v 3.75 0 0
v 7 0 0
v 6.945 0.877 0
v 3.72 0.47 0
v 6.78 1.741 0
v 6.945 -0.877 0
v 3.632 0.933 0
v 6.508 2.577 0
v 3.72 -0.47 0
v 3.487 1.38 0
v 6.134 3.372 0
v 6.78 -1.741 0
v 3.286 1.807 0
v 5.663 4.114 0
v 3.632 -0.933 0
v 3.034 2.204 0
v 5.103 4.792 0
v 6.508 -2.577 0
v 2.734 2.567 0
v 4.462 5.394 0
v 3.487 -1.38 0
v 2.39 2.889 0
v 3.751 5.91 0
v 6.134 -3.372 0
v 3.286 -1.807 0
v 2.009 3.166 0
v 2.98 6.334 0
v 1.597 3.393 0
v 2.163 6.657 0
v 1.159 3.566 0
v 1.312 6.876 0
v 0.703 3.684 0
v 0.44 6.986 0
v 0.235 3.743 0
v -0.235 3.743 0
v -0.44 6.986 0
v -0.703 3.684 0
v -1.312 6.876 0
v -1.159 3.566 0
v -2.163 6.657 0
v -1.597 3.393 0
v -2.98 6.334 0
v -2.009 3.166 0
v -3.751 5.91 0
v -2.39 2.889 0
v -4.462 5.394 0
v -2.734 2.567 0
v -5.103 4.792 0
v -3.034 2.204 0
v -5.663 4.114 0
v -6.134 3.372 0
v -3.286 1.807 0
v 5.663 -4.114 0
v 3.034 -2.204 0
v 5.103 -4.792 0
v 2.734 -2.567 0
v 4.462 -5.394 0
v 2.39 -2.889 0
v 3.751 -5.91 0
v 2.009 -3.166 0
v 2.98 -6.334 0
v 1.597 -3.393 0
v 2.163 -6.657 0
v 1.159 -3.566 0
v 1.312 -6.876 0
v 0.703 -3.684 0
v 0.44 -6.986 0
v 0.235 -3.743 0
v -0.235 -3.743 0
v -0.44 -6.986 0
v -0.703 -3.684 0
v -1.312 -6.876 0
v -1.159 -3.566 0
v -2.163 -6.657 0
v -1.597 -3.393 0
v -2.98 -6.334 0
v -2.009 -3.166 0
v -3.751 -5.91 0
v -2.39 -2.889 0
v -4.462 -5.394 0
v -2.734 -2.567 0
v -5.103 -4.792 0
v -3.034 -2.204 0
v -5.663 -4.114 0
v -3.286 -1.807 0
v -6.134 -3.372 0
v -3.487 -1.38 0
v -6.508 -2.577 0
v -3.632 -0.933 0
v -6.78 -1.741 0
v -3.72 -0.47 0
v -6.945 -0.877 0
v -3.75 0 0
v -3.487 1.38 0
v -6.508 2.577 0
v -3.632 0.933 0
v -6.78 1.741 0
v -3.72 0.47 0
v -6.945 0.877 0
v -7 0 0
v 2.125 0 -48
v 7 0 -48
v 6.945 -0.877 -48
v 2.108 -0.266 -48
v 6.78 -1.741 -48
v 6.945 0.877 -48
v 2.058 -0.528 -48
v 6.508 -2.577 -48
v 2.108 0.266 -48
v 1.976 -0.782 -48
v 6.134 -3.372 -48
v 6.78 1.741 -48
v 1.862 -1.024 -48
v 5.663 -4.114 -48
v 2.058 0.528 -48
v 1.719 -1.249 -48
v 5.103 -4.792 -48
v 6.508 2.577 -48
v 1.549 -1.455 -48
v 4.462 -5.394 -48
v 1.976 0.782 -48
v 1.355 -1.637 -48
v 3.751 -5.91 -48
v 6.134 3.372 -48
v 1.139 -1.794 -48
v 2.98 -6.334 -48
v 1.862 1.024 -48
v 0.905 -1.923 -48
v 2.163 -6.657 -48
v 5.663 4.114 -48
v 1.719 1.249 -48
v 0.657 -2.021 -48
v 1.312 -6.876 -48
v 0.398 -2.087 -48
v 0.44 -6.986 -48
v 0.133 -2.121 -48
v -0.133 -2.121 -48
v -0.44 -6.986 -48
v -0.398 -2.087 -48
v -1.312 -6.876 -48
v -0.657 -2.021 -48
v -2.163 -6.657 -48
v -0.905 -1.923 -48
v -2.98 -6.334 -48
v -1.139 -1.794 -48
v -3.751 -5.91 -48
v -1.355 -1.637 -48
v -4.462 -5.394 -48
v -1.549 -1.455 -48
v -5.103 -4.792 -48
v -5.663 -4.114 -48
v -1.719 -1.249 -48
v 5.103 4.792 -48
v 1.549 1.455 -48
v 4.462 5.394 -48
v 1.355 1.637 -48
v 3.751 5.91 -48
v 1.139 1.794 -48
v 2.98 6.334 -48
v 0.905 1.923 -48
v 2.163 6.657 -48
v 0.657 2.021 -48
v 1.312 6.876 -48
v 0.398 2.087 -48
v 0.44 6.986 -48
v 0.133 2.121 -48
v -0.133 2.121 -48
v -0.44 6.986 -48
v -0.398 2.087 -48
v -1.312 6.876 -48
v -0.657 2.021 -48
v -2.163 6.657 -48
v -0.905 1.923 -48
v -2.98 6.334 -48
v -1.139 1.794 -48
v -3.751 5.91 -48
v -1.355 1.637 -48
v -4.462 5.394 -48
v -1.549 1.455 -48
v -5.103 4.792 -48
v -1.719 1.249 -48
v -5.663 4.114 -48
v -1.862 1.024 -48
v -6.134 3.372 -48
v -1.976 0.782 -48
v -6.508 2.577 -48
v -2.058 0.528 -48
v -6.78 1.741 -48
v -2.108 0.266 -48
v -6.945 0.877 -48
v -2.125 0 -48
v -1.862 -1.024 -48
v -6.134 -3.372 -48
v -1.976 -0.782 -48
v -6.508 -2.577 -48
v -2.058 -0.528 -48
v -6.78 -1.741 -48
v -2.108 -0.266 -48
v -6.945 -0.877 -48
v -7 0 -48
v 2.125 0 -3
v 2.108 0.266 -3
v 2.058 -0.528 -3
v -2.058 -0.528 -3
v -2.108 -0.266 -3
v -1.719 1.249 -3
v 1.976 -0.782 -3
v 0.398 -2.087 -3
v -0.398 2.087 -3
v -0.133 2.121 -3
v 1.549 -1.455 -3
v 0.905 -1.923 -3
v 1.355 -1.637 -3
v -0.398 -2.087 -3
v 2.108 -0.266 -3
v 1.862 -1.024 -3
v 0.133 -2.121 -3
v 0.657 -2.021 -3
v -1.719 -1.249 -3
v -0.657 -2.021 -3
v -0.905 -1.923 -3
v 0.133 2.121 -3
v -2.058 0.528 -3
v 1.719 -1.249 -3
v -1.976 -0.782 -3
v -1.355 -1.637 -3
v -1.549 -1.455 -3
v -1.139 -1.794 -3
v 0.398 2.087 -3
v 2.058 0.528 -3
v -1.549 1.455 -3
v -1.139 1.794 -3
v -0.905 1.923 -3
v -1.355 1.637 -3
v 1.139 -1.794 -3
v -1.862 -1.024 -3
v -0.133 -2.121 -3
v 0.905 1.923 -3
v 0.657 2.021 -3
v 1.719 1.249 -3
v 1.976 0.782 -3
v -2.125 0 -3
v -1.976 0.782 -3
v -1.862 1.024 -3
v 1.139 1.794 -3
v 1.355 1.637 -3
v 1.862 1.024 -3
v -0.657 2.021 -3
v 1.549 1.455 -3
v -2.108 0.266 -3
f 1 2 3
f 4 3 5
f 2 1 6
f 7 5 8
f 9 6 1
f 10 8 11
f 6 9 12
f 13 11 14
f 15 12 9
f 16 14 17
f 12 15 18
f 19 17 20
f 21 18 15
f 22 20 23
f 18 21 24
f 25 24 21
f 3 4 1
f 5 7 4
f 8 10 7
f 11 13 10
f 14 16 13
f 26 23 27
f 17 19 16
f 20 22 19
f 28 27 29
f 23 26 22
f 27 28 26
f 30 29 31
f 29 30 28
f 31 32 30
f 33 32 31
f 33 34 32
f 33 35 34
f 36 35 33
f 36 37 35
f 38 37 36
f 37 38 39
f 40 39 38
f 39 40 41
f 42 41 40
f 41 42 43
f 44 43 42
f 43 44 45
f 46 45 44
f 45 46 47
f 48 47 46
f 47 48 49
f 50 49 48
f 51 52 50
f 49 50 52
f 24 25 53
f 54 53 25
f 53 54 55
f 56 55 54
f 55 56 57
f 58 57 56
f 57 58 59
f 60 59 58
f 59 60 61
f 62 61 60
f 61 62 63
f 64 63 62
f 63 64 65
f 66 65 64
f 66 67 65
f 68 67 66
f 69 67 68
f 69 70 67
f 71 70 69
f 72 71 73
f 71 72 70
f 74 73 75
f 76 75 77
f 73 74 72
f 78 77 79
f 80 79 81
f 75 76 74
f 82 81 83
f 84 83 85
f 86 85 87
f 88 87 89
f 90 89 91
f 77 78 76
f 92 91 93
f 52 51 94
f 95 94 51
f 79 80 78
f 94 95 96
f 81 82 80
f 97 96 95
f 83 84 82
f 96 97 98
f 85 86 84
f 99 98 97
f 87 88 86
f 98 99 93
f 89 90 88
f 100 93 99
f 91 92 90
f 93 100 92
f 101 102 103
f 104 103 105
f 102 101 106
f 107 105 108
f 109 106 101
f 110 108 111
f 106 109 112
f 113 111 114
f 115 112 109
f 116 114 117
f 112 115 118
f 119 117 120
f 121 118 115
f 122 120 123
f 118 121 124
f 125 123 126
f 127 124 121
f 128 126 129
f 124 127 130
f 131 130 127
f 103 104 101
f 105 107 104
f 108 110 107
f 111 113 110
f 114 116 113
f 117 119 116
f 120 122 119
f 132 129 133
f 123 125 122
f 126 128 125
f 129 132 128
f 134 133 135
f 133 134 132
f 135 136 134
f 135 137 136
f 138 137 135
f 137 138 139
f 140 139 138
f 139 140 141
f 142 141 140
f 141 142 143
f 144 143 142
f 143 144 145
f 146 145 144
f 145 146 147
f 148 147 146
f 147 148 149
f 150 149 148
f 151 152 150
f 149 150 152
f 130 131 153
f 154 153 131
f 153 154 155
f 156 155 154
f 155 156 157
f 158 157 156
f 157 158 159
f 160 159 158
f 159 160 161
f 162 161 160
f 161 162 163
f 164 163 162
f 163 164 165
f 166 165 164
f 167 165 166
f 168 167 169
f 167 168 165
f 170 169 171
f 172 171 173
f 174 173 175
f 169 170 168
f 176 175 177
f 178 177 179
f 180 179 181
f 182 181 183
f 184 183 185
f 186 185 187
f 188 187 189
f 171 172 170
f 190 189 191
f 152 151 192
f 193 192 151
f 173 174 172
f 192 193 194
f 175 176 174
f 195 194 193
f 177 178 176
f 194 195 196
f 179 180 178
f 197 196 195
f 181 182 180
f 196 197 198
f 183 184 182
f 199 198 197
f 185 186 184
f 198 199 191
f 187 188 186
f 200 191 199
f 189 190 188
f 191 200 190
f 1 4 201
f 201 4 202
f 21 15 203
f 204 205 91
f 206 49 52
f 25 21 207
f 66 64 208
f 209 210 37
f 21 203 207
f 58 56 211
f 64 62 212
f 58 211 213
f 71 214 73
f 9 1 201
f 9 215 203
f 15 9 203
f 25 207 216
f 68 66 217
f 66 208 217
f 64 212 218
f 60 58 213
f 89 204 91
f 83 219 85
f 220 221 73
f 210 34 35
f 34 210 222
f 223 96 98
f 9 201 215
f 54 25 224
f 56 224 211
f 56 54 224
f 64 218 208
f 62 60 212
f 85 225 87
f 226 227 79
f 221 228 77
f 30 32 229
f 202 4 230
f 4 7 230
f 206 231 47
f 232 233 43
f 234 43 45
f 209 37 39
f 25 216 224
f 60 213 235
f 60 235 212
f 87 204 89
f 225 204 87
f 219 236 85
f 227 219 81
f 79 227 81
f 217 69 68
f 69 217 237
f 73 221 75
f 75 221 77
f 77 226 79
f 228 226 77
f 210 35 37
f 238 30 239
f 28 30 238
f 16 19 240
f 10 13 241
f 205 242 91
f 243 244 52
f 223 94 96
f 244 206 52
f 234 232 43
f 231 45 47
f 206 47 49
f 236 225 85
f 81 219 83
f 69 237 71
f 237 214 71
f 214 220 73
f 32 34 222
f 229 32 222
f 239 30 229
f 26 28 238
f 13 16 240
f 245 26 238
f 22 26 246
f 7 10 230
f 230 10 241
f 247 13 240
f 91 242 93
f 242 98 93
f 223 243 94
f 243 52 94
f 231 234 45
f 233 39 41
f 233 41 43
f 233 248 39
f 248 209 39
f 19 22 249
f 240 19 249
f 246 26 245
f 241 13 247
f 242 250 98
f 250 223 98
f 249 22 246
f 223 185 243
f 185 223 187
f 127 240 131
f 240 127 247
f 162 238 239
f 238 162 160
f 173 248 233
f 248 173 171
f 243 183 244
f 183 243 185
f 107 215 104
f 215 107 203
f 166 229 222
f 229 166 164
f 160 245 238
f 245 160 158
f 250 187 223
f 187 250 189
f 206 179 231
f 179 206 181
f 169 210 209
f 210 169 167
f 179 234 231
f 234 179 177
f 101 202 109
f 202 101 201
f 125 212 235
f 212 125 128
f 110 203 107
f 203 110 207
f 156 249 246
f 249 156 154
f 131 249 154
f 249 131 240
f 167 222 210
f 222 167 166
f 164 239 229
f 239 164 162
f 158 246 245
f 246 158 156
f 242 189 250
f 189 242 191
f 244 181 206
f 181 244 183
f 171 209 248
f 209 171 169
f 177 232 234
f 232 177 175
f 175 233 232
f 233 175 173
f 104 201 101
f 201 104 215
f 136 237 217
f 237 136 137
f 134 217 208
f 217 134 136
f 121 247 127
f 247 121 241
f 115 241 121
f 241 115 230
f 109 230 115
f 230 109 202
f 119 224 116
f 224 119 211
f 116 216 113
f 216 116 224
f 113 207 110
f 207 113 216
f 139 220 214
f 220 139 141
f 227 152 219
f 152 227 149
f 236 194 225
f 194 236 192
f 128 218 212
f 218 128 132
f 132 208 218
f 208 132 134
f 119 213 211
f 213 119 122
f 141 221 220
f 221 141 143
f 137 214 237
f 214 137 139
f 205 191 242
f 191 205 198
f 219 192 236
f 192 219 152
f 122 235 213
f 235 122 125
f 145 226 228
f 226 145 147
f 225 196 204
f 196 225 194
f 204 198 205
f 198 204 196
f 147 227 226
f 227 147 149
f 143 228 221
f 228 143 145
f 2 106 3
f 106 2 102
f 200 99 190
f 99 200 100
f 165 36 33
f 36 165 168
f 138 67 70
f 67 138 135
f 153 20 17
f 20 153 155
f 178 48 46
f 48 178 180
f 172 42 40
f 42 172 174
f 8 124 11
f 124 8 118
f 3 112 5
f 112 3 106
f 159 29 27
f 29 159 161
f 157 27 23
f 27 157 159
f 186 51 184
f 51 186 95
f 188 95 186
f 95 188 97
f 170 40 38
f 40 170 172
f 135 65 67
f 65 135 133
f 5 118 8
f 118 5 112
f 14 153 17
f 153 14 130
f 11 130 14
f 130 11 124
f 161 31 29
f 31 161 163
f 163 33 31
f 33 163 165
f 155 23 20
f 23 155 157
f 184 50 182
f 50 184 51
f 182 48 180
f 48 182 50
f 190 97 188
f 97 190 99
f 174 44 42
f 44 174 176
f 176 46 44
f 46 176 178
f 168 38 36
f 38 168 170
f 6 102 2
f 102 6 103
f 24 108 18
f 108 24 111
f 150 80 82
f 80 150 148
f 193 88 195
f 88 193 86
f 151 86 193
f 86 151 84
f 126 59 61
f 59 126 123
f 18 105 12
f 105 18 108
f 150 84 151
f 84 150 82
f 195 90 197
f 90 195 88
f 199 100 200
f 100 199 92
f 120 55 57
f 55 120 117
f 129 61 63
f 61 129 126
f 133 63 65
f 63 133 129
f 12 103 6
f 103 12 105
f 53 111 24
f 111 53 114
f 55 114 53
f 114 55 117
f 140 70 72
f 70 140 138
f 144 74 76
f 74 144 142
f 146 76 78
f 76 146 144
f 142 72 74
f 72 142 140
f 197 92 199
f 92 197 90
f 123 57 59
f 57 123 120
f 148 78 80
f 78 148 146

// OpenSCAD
$fn = 50;


difference() {
	union() {
		translate(v = [0, 0, -48.0000000000]) {
			cylinder(h = 48, r = 7.0000000000);
		}
		cylinder(h = 0, r = 16.0000000000);
	}
	union() {
		translate(v = [0, 0, 0]) {
			rotate(a = [0, 0, 0]) {
				difference() {
					union() {
						#translate(v = [0, 0, -48.0000000000]) {
							cylinder(h = 48, r = 2.0000000000);
						}
						#translate(v = [0, 0, -3]) {
							cylinder(h = 3, r1 = 2.1250000000, r2 = 3.7500000000);
						}
						#translate(v = [0, 0, -48.0000000000]) {
							cylinder(h = 48, r = 2.1250000000);
						}
						#translate(v = [0, 0, -48.0000000000]) {
							cylinder(h = 48, r = 2.0000000000);
						}
					}
					union();
				}
			}
		}
	}
}
